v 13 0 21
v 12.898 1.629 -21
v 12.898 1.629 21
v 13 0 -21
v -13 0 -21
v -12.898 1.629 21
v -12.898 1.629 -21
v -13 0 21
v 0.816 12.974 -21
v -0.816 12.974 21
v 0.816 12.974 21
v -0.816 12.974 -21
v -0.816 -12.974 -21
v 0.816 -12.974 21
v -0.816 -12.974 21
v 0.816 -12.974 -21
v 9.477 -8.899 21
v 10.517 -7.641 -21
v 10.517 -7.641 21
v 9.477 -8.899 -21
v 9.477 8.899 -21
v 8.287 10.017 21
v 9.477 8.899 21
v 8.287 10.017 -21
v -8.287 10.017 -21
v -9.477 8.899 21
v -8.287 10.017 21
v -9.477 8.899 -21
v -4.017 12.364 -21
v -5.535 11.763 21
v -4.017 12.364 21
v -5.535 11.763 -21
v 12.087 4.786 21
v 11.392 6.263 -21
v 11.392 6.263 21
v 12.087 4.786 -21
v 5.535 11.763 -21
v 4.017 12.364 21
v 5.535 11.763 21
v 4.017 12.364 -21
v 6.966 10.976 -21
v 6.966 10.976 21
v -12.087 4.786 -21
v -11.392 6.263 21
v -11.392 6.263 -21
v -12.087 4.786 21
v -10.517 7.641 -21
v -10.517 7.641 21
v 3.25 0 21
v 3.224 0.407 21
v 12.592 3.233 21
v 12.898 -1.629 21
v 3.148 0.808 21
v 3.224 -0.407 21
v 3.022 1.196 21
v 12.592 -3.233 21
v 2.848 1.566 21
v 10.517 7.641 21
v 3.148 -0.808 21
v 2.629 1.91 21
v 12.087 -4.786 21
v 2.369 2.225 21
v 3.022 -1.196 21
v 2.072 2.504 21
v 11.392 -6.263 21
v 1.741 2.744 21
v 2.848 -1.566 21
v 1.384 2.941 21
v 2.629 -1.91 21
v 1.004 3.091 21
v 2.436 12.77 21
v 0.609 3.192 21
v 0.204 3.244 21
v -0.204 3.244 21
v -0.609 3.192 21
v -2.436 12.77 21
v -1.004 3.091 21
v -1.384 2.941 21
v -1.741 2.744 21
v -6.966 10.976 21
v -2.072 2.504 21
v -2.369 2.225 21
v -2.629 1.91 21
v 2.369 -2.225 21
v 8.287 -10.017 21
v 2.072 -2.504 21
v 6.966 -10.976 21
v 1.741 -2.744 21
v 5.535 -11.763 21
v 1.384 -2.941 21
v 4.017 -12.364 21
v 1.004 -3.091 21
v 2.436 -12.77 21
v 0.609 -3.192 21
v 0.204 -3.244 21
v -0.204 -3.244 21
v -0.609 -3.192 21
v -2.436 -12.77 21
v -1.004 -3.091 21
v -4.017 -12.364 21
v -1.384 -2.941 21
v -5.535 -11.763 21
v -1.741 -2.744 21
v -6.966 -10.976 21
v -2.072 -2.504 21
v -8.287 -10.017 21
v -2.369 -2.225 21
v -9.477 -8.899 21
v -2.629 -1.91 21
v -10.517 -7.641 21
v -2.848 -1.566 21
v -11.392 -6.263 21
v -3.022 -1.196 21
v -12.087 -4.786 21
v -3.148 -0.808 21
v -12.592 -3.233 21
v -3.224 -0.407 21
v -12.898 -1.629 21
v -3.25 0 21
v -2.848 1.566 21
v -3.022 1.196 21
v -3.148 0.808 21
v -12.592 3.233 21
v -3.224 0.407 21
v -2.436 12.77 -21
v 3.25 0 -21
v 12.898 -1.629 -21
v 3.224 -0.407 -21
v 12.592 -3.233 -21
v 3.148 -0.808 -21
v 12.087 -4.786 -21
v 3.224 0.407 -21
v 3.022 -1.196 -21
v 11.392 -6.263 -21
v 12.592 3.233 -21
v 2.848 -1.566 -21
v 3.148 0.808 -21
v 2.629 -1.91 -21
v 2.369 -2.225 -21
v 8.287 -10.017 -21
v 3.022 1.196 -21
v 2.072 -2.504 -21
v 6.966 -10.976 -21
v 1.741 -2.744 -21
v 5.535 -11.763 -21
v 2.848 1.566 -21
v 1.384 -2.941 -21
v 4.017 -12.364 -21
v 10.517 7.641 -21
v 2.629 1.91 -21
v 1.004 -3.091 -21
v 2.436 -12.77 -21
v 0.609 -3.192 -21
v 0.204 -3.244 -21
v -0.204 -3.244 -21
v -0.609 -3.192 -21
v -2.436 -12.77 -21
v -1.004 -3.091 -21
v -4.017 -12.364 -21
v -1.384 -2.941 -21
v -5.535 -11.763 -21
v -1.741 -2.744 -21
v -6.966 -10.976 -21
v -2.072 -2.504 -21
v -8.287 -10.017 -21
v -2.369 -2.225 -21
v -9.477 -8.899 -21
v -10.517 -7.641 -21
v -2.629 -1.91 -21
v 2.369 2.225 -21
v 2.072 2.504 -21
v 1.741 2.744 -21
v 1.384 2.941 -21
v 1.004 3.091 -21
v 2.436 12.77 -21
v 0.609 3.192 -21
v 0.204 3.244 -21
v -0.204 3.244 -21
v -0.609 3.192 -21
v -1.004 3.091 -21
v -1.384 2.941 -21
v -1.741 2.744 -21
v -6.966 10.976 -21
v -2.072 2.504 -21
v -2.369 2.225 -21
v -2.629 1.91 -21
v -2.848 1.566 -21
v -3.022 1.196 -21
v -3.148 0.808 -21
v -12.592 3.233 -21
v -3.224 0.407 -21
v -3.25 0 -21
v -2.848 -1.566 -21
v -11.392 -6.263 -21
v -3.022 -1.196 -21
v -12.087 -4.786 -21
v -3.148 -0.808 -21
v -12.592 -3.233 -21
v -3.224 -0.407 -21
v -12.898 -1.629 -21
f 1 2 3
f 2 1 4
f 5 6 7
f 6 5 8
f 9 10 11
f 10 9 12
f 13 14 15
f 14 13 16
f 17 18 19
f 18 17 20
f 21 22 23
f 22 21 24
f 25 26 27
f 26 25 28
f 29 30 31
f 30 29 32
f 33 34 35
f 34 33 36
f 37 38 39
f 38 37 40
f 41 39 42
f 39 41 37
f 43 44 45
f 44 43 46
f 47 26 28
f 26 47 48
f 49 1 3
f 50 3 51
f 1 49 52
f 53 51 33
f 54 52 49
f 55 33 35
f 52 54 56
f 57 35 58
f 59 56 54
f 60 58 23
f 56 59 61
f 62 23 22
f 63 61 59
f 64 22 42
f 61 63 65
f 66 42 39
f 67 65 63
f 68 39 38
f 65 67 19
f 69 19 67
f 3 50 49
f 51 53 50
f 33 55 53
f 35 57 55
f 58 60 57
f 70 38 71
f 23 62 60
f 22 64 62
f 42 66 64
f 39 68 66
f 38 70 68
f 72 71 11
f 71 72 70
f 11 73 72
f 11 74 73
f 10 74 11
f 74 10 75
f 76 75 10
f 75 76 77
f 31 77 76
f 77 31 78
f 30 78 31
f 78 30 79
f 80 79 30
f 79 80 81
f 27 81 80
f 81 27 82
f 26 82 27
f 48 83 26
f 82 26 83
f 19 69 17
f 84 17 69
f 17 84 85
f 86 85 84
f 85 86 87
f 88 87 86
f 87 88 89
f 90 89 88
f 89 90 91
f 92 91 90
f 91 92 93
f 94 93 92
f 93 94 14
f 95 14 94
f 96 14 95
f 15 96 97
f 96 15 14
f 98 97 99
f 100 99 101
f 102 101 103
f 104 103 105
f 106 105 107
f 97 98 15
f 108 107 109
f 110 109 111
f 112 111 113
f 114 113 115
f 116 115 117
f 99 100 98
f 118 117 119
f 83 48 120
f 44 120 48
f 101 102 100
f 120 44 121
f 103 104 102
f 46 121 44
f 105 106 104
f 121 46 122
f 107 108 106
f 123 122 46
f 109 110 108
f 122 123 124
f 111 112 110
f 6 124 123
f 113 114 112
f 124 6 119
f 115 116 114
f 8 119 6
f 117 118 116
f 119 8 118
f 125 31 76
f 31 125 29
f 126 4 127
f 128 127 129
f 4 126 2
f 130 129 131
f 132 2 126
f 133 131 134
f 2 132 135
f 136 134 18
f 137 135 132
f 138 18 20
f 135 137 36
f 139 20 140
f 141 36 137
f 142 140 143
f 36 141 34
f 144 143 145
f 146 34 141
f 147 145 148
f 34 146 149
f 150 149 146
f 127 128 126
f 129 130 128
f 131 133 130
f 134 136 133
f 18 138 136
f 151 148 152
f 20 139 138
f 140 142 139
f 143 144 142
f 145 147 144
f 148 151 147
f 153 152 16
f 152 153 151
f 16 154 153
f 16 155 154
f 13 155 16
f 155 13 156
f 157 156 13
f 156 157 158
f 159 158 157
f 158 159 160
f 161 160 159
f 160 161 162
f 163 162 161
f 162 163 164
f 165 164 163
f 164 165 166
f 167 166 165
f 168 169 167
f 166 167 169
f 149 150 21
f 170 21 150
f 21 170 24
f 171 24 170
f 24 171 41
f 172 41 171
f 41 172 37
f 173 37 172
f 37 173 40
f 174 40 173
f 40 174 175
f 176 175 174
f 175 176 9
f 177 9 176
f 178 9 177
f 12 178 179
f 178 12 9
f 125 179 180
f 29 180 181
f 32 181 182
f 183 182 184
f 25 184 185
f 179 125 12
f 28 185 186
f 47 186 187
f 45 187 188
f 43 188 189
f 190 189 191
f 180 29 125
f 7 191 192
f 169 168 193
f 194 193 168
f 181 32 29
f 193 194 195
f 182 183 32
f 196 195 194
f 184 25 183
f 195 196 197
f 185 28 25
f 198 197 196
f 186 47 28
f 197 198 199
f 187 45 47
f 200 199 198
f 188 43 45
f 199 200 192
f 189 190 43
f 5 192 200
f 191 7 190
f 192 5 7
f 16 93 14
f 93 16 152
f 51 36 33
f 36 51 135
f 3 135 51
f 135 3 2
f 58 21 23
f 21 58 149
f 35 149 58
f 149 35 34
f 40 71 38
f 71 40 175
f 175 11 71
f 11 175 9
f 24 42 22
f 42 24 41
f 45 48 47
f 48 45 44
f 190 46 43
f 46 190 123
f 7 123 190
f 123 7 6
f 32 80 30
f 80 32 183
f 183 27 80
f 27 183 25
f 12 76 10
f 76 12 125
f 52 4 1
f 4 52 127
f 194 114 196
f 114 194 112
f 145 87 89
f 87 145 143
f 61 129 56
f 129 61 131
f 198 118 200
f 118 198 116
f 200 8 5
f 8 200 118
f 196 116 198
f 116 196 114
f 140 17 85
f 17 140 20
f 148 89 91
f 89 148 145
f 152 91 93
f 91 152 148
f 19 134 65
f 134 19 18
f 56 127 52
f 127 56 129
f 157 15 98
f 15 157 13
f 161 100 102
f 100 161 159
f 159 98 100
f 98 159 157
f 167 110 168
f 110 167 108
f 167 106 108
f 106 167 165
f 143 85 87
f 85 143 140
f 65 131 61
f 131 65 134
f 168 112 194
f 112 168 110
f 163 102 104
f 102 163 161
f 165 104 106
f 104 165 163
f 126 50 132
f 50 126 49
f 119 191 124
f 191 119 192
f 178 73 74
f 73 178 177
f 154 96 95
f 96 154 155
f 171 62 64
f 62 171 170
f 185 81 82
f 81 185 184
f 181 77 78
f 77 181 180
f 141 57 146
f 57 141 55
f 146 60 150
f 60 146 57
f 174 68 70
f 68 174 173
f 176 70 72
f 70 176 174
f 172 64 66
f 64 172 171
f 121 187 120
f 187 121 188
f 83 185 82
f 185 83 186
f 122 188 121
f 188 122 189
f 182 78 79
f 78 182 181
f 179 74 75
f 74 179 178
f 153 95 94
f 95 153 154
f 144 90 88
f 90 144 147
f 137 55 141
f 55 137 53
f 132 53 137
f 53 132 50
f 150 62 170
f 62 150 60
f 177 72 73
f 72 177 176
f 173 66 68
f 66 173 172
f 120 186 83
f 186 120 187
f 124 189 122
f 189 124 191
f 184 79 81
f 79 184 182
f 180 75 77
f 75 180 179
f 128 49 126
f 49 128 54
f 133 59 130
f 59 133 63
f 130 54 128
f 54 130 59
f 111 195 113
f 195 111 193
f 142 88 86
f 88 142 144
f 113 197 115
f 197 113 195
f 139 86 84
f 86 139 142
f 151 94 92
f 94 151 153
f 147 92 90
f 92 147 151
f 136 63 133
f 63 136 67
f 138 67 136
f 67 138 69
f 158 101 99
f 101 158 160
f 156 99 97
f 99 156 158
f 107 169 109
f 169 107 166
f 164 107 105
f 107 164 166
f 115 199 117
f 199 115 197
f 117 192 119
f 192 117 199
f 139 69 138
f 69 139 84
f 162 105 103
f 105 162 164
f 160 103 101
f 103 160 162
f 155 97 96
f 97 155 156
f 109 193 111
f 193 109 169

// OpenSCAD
$fn = 50;


difference() {
	union() {
		translate(v = [0, 0, -21.0000000000]) {
			cylinder(h = 42, r = 13.0000000000);
		}
	}
	union() {
		translate(v = [0, 0, -100.0000000000]) {
			cylinder(h = 200, r = 3.2500000000);
		}
	}
}
